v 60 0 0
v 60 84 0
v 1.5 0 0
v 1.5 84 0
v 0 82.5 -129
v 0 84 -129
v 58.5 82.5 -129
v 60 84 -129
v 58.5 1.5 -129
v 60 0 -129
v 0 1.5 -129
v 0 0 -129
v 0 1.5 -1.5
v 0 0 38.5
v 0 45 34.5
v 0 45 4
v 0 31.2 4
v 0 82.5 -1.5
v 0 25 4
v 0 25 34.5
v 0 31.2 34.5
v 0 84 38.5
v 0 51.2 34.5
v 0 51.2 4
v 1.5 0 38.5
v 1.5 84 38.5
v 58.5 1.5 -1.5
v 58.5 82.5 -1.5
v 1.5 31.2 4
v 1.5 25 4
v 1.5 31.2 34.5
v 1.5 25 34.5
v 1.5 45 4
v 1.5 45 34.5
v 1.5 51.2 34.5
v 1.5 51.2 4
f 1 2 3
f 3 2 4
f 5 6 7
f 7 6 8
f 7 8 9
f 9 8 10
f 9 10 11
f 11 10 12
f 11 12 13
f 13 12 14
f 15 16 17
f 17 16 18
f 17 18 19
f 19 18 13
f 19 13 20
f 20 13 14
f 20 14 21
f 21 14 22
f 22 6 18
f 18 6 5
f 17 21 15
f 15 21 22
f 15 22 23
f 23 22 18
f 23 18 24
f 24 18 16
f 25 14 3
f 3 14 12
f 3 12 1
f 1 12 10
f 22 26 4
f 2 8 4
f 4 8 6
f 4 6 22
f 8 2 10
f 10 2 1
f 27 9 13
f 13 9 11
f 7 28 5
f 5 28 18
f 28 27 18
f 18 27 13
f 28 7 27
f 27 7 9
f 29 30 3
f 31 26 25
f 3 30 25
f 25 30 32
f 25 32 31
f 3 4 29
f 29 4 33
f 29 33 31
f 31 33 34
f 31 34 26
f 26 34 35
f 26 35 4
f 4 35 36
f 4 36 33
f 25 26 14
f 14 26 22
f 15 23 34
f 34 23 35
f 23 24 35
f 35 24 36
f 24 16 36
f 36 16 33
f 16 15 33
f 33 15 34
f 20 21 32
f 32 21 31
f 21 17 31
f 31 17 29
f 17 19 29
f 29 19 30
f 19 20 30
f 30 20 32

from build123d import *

# Parameters (mm, degrees)
SKETCH1_W           = 84
SKETCH1_H           = 129
BOSS_EXTRUDE1_DEPTH = 60
SHELL1_T            = -1.5
CUT_EXTRUDE1_DEPTH  = 127.5
SKETCH3_W           = 40
SKETCH3_H           = 84
BOSS_EXTRUDE2_DEPTH = 1.5
SKETCH4_W           = 30.5
SKETCH4_H           = 6.2
CUT_EXTRUDE2_DEPTH  = 165.679233664


with BuildPart() as part:
    # Sketch1 → Boss-Extrude1 (new body)
    with BuildSketch(Plane.YZ):
        with Locations((42, -64.5)):
            Rectangle(SKETCH1_W, SKETCH1_H)
    extrude(amount=BOSS_EXTRUDE1_DEPTH)

    # Shell1
    shell1_openings = [part.faces().sort_by_distance(p)[0] for p in [
        (0, 42, -64.5),
    ]]
    offset(amount=SHELL1_T, openings=shell1_openings, kind=Kind.INTERSECTION)

    # Sketch2 → Cut-Extrude1 (cut)
    with BuildSketch(Plane(origin=(0, 0, -129), x_dir=(1, 0, 0), z_dir=(0, 0, -1))):
        Polygon((1.5, -82.5), (58.5, -82.5), (58.5, -1.5), (1.5, -1.5), (0, -1.5), (0, -82.5), align=None)
    extrude(amount=-CUT_EXTRUDE1_DEPTH, mode=Mode.SUBTRACT)

    # Sketch3 → Boss-Extrude2 (add)
    with BuildSketch(Plane.ZY):
        with Locations((18.5, 42)):
            Rectangle(SKETCH3_W, SKETCH3_H)
    extrude(amount=-BOSS_EXTRUDE2_DEPTH)

    # Sketch4 → Cut-Extrude2 (cut, through all)
    with BuildSketch(Plane(origin=(1.5, 0, 0), x_dir=(0, 0, -1), z_dir=(1, 0, 0))):
        with Locations((-19.25, 28.1)):
            Rectangle(SKETCH4_W, SKETCH4_H)
        with Locations((-19.25, 48.1)):
            Rectangle(SKETCH4_W, SKETCH4_H)
    extrude(amount=-CUT_EXTRUDE2_DEPTH, mode=Mode.SUBTRACT)


solid = part.part
